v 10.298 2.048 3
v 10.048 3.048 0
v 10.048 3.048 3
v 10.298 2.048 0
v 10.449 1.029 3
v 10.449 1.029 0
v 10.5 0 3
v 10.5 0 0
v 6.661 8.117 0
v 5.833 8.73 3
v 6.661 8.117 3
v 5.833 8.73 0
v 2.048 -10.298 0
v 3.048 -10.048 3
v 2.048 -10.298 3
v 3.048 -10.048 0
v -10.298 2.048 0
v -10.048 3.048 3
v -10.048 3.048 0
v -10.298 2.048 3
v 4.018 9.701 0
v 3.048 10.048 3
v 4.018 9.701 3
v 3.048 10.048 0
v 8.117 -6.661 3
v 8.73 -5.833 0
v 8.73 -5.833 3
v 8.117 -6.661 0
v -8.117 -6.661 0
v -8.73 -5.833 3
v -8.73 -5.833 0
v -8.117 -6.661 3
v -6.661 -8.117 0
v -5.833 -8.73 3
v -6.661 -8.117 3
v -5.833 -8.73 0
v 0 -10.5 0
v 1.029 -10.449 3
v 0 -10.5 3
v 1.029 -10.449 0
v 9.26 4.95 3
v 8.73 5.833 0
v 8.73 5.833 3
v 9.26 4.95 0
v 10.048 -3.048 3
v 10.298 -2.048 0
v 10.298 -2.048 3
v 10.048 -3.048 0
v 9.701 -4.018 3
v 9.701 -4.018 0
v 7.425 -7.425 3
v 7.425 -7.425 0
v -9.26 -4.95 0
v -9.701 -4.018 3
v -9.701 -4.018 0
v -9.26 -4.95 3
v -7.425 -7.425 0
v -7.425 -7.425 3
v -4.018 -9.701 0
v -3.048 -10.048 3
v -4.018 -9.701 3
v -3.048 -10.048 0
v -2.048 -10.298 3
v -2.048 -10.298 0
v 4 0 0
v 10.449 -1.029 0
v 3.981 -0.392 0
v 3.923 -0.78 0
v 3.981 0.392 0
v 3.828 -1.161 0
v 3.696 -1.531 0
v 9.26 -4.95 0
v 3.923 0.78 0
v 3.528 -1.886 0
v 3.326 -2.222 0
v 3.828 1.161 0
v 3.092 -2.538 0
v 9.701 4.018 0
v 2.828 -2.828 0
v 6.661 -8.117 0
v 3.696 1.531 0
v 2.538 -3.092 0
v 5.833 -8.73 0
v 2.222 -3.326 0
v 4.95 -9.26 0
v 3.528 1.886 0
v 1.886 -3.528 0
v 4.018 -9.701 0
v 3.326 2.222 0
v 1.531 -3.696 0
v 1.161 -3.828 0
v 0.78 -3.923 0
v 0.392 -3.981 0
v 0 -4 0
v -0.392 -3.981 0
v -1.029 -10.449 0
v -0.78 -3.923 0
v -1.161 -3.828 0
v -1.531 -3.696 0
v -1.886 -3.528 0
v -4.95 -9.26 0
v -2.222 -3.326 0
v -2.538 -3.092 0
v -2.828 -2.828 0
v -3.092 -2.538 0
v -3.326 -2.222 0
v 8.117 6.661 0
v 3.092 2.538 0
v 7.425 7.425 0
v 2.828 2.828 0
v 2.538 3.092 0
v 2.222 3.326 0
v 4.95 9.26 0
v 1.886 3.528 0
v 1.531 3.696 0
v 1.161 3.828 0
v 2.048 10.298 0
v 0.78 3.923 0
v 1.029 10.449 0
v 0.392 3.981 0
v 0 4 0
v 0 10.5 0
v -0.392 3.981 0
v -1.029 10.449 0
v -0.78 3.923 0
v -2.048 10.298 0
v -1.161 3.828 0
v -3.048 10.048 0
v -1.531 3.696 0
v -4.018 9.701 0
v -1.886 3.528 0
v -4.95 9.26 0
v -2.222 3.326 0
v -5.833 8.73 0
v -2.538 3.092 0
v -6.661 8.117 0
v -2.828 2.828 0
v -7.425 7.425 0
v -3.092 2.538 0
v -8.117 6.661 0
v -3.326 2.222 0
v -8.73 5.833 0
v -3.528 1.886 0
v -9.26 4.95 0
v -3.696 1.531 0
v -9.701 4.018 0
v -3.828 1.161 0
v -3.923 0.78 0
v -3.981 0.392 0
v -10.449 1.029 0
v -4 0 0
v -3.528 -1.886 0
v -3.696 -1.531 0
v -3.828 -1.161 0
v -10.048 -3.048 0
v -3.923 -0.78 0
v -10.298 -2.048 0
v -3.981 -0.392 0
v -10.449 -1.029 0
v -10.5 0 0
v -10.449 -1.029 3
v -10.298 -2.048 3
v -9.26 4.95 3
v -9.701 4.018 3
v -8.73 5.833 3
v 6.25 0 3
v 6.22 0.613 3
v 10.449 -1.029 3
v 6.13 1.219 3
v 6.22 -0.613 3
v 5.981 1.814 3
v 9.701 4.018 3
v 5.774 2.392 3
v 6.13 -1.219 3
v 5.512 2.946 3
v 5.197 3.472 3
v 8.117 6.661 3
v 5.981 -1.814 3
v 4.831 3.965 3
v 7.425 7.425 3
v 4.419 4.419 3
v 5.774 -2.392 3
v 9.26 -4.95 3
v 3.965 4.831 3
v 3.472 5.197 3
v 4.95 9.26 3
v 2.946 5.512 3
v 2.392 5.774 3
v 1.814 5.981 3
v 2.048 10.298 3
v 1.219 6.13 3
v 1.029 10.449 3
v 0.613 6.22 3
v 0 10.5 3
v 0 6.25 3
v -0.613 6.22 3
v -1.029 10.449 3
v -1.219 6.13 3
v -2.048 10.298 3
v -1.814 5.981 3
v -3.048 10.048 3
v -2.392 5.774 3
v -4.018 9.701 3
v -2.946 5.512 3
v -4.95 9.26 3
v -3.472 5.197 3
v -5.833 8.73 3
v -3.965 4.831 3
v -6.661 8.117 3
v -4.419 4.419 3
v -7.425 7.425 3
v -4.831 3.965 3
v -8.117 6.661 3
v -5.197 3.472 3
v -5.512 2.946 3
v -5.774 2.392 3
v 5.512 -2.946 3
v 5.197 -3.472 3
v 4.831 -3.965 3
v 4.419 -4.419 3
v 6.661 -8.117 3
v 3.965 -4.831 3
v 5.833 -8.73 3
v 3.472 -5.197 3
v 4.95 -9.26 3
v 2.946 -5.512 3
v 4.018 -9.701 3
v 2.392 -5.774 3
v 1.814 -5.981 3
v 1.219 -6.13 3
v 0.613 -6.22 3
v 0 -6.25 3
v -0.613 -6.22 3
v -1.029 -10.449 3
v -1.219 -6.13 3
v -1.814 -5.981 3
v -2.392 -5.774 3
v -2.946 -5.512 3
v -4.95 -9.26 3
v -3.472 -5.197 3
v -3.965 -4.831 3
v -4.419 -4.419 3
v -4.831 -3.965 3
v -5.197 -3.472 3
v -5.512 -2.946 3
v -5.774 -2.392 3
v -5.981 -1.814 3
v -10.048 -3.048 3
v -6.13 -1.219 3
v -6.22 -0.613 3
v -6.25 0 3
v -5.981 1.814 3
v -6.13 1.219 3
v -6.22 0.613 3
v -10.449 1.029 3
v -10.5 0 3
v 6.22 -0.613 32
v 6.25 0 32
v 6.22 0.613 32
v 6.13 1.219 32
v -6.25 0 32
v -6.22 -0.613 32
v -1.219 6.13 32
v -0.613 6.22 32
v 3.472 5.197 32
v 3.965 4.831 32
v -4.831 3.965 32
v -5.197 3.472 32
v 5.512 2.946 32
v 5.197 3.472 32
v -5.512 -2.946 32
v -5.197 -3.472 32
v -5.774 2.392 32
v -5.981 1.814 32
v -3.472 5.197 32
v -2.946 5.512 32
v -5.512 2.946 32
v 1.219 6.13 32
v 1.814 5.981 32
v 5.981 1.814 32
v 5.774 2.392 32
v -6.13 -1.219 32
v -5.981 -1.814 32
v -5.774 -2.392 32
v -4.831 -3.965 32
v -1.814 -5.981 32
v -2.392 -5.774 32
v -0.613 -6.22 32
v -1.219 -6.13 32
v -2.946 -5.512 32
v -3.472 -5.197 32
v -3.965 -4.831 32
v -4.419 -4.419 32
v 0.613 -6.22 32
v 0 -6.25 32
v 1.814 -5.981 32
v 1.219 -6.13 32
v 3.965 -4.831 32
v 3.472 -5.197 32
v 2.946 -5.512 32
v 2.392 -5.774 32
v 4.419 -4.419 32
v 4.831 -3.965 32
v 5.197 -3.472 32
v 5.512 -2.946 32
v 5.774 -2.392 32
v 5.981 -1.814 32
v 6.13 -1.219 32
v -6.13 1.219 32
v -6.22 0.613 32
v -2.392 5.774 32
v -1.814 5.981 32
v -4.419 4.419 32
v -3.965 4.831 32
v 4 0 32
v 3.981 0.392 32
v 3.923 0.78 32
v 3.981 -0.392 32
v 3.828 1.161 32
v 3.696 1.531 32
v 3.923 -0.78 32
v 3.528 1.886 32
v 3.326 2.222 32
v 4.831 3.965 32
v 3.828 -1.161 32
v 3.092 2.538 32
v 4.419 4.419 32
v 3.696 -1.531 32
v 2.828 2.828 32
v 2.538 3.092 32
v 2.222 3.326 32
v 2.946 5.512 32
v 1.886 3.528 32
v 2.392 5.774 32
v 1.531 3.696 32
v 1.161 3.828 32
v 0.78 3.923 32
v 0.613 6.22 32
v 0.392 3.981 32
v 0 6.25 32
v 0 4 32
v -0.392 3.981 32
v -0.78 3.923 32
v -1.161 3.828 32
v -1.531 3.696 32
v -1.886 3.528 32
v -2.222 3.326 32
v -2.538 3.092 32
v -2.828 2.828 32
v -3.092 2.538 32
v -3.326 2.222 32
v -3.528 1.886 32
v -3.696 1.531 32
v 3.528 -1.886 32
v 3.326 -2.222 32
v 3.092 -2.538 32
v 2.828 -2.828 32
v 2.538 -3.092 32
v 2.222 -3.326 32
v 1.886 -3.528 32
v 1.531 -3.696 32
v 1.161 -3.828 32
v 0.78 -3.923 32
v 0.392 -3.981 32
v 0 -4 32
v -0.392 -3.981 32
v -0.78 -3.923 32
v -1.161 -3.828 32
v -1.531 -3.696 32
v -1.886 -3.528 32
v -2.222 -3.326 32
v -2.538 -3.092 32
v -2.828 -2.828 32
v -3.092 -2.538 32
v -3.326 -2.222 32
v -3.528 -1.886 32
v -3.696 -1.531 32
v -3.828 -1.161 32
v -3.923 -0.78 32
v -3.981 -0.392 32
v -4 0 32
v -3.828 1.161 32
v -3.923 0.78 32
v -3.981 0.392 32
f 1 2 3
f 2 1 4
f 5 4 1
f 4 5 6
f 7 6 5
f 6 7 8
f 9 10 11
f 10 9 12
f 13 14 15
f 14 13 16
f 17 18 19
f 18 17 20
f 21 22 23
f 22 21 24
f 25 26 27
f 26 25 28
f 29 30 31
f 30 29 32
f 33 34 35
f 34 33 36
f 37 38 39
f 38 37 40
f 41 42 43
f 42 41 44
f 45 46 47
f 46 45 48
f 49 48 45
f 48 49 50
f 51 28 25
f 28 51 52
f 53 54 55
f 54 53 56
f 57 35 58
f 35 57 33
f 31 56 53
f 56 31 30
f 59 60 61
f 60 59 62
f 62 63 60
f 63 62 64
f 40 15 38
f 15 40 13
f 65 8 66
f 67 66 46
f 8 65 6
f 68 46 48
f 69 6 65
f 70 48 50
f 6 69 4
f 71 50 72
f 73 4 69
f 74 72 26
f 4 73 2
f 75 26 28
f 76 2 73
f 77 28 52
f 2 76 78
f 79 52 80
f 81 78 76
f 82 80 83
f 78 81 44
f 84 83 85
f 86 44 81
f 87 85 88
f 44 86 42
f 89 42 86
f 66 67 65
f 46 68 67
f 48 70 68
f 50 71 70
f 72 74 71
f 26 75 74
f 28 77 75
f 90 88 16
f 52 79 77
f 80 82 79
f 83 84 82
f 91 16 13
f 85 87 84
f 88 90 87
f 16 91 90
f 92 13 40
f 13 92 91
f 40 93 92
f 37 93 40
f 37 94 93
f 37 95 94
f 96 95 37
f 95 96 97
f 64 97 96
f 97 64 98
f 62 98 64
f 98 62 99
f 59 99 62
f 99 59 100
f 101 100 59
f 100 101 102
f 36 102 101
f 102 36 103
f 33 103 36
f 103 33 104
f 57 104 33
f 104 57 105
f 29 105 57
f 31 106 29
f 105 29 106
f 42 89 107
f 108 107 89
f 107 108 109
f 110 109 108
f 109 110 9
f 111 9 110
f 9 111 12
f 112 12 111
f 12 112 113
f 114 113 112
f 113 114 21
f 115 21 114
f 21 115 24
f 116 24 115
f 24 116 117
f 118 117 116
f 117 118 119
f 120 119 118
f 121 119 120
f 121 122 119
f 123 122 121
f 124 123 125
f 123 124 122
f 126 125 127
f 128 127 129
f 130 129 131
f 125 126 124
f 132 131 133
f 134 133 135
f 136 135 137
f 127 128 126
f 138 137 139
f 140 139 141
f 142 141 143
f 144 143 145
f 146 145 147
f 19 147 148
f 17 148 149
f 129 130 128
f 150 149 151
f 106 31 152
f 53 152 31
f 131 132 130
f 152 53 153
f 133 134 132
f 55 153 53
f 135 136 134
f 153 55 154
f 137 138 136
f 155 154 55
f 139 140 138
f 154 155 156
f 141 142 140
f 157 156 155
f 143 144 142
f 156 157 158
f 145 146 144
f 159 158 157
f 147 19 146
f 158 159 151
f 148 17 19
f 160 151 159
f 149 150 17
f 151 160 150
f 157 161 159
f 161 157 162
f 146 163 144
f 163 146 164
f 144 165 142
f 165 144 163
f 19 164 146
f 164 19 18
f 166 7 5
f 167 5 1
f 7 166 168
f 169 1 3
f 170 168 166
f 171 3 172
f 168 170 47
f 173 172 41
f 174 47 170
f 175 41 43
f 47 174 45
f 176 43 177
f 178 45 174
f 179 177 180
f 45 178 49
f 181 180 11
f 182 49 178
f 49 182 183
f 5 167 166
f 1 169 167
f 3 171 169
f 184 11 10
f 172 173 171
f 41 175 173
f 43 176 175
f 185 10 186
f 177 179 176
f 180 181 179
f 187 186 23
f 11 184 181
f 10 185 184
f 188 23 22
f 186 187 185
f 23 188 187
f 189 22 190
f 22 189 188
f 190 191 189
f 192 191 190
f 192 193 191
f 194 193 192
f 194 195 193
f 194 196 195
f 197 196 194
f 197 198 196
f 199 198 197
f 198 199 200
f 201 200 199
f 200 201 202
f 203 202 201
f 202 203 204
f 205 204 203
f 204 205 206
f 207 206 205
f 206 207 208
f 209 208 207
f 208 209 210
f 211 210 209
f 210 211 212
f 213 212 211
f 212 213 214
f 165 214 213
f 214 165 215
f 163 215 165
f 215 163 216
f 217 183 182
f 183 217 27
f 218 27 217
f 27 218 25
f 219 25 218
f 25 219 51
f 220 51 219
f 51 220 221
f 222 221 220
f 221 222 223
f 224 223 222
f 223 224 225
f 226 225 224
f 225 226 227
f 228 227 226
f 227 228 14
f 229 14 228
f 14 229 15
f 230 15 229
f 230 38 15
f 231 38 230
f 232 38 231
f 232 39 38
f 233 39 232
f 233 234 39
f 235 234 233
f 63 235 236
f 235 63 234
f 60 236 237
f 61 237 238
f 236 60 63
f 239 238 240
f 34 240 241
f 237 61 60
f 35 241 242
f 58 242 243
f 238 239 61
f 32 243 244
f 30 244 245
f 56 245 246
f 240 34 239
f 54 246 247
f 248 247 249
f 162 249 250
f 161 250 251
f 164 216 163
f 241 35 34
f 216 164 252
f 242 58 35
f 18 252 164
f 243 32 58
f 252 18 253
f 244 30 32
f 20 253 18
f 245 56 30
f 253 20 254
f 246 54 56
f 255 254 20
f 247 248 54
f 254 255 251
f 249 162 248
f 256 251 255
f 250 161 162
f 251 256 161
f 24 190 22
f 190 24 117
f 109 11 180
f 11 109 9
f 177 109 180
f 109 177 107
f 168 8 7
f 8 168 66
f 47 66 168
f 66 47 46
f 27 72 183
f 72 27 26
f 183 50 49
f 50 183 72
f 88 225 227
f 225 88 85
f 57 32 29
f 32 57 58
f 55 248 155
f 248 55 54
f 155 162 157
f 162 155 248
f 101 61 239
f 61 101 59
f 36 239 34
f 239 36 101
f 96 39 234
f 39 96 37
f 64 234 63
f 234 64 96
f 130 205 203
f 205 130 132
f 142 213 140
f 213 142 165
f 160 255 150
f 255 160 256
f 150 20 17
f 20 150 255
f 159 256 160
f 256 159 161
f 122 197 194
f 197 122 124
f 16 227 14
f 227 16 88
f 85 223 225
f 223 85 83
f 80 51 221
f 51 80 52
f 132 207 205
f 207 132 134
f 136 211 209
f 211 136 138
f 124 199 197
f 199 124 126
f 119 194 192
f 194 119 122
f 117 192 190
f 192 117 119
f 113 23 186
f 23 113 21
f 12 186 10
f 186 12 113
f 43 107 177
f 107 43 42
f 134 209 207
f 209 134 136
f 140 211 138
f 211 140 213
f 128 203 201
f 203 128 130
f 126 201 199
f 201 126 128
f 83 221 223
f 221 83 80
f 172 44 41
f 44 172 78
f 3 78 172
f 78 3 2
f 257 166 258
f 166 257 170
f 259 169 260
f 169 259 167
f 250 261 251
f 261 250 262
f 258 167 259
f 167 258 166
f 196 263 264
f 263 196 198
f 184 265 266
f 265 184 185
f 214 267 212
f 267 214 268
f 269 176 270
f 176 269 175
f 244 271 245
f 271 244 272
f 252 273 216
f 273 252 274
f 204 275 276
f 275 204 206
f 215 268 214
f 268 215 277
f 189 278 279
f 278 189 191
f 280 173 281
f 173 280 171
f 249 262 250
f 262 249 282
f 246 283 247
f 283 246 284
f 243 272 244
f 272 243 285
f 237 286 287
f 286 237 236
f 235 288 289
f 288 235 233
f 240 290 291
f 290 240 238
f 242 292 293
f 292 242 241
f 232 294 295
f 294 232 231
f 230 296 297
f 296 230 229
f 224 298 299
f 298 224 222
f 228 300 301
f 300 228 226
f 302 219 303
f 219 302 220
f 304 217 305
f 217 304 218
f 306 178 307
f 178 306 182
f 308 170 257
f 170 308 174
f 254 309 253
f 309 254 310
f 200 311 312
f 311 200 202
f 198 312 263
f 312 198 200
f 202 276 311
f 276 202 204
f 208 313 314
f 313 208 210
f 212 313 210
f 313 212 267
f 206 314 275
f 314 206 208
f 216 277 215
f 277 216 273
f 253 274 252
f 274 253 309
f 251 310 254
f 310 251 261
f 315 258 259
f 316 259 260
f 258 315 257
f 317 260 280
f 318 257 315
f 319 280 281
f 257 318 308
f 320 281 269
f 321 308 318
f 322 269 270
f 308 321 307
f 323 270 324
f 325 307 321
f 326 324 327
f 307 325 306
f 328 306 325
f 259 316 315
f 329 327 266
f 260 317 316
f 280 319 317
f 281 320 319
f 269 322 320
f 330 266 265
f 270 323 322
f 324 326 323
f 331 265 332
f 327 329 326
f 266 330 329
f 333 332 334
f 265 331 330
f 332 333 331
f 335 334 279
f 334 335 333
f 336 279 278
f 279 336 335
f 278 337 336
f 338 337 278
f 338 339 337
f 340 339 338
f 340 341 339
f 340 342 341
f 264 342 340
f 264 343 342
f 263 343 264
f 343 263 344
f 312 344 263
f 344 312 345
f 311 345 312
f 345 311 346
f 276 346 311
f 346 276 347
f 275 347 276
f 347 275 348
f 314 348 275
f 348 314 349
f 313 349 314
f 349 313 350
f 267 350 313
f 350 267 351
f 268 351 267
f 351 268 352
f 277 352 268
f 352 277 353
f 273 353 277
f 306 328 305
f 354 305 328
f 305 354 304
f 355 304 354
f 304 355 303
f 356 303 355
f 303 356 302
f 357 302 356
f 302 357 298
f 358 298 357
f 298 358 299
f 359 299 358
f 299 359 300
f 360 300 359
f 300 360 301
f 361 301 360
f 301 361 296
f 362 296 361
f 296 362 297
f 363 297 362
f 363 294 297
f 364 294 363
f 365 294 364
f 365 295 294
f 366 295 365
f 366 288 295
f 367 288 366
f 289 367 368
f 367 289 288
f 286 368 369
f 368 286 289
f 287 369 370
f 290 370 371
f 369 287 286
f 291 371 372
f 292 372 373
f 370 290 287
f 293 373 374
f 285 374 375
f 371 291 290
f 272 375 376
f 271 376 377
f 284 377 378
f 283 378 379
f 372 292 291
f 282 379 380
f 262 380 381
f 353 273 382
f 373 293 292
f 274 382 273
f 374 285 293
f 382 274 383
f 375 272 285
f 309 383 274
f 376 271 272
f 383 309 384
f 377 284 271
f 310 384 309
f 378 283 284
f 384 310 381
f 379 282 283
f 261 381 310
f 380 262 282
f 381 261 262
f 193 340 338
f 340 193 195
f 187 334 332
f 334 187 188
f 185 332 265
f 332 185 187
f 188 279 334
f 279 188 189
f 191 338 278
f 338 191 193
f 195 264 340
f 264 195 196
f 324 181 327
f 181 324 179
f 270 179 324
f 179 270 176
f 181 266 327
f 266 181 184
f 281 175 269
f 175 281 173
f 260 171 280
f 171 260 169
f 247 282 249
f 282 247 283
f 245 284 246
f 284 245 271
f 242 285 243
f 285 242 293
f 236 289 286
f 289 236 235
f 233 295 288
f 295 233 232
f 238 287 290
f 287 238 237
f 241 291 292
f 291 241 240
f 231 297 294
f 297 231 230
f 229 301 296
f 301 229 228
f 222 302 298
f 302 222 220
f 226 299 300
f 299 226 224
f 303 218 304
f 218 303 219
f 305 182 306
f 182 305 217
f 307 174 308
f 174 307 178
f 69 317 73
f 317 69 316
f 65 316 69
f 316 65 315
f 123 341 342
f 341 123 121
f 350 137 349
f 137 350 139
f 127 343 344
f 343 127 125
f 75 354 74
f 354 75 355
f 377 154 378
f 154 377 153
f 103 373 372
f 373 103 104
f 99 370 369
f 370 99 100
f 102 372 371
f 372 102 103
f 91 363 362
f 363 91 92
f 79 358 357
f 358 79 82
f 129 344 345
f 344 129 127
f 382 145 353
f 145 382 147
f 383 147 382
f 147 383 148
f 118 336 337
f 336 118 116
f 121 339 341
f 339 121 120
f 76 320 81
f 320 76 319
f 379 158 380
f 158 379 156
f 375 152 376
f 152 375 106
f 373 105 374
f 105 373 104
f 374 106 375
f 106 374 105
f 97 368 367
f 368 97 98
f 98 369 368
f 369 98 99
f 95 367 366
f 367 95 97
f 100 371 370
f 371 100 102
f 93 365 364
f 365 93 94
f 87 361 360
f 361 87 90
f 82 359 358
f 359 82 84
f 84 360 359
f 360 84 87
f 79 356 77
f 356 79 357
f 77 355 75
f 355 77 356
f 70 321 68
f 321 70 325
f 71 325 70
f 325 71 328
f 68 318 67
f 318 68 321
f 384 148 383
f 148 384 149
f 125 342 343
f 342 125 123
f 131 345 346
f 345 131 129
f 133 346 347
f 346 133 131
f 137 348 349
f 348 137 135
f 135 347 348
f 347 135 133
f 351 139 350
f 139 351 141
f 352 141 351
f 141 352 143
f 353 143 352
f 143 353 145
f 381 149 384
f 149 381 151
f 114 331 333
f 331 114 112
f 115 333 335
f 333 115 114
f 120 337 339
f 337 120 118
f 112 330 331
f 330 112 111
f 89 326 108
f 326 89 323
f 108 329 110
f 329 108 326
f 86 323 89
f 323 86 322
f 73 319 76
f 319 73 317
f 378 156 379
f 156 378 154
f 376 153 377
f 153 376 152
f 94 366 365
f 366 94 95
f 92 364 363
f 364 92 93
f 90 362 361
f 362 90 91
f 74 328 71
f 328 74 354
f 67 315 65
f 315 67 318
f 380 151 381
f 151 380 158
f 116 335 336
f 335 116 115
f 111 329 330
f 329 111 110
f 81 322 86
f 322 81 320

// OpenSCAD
$fn = 64;

module samsung_vesa_sleeve(base = 3, height = 32)
difference() {
    union() {
        linear_extrude(base)
            circle(r = 10.5);

        translate([0, 0, base])
            linear_extrude(height - base)
                circle(r = 6.25);
    }
    
    linear_extrude(height)
        circle(r = 4.0);
}

samsung_vesa_sleeve();
